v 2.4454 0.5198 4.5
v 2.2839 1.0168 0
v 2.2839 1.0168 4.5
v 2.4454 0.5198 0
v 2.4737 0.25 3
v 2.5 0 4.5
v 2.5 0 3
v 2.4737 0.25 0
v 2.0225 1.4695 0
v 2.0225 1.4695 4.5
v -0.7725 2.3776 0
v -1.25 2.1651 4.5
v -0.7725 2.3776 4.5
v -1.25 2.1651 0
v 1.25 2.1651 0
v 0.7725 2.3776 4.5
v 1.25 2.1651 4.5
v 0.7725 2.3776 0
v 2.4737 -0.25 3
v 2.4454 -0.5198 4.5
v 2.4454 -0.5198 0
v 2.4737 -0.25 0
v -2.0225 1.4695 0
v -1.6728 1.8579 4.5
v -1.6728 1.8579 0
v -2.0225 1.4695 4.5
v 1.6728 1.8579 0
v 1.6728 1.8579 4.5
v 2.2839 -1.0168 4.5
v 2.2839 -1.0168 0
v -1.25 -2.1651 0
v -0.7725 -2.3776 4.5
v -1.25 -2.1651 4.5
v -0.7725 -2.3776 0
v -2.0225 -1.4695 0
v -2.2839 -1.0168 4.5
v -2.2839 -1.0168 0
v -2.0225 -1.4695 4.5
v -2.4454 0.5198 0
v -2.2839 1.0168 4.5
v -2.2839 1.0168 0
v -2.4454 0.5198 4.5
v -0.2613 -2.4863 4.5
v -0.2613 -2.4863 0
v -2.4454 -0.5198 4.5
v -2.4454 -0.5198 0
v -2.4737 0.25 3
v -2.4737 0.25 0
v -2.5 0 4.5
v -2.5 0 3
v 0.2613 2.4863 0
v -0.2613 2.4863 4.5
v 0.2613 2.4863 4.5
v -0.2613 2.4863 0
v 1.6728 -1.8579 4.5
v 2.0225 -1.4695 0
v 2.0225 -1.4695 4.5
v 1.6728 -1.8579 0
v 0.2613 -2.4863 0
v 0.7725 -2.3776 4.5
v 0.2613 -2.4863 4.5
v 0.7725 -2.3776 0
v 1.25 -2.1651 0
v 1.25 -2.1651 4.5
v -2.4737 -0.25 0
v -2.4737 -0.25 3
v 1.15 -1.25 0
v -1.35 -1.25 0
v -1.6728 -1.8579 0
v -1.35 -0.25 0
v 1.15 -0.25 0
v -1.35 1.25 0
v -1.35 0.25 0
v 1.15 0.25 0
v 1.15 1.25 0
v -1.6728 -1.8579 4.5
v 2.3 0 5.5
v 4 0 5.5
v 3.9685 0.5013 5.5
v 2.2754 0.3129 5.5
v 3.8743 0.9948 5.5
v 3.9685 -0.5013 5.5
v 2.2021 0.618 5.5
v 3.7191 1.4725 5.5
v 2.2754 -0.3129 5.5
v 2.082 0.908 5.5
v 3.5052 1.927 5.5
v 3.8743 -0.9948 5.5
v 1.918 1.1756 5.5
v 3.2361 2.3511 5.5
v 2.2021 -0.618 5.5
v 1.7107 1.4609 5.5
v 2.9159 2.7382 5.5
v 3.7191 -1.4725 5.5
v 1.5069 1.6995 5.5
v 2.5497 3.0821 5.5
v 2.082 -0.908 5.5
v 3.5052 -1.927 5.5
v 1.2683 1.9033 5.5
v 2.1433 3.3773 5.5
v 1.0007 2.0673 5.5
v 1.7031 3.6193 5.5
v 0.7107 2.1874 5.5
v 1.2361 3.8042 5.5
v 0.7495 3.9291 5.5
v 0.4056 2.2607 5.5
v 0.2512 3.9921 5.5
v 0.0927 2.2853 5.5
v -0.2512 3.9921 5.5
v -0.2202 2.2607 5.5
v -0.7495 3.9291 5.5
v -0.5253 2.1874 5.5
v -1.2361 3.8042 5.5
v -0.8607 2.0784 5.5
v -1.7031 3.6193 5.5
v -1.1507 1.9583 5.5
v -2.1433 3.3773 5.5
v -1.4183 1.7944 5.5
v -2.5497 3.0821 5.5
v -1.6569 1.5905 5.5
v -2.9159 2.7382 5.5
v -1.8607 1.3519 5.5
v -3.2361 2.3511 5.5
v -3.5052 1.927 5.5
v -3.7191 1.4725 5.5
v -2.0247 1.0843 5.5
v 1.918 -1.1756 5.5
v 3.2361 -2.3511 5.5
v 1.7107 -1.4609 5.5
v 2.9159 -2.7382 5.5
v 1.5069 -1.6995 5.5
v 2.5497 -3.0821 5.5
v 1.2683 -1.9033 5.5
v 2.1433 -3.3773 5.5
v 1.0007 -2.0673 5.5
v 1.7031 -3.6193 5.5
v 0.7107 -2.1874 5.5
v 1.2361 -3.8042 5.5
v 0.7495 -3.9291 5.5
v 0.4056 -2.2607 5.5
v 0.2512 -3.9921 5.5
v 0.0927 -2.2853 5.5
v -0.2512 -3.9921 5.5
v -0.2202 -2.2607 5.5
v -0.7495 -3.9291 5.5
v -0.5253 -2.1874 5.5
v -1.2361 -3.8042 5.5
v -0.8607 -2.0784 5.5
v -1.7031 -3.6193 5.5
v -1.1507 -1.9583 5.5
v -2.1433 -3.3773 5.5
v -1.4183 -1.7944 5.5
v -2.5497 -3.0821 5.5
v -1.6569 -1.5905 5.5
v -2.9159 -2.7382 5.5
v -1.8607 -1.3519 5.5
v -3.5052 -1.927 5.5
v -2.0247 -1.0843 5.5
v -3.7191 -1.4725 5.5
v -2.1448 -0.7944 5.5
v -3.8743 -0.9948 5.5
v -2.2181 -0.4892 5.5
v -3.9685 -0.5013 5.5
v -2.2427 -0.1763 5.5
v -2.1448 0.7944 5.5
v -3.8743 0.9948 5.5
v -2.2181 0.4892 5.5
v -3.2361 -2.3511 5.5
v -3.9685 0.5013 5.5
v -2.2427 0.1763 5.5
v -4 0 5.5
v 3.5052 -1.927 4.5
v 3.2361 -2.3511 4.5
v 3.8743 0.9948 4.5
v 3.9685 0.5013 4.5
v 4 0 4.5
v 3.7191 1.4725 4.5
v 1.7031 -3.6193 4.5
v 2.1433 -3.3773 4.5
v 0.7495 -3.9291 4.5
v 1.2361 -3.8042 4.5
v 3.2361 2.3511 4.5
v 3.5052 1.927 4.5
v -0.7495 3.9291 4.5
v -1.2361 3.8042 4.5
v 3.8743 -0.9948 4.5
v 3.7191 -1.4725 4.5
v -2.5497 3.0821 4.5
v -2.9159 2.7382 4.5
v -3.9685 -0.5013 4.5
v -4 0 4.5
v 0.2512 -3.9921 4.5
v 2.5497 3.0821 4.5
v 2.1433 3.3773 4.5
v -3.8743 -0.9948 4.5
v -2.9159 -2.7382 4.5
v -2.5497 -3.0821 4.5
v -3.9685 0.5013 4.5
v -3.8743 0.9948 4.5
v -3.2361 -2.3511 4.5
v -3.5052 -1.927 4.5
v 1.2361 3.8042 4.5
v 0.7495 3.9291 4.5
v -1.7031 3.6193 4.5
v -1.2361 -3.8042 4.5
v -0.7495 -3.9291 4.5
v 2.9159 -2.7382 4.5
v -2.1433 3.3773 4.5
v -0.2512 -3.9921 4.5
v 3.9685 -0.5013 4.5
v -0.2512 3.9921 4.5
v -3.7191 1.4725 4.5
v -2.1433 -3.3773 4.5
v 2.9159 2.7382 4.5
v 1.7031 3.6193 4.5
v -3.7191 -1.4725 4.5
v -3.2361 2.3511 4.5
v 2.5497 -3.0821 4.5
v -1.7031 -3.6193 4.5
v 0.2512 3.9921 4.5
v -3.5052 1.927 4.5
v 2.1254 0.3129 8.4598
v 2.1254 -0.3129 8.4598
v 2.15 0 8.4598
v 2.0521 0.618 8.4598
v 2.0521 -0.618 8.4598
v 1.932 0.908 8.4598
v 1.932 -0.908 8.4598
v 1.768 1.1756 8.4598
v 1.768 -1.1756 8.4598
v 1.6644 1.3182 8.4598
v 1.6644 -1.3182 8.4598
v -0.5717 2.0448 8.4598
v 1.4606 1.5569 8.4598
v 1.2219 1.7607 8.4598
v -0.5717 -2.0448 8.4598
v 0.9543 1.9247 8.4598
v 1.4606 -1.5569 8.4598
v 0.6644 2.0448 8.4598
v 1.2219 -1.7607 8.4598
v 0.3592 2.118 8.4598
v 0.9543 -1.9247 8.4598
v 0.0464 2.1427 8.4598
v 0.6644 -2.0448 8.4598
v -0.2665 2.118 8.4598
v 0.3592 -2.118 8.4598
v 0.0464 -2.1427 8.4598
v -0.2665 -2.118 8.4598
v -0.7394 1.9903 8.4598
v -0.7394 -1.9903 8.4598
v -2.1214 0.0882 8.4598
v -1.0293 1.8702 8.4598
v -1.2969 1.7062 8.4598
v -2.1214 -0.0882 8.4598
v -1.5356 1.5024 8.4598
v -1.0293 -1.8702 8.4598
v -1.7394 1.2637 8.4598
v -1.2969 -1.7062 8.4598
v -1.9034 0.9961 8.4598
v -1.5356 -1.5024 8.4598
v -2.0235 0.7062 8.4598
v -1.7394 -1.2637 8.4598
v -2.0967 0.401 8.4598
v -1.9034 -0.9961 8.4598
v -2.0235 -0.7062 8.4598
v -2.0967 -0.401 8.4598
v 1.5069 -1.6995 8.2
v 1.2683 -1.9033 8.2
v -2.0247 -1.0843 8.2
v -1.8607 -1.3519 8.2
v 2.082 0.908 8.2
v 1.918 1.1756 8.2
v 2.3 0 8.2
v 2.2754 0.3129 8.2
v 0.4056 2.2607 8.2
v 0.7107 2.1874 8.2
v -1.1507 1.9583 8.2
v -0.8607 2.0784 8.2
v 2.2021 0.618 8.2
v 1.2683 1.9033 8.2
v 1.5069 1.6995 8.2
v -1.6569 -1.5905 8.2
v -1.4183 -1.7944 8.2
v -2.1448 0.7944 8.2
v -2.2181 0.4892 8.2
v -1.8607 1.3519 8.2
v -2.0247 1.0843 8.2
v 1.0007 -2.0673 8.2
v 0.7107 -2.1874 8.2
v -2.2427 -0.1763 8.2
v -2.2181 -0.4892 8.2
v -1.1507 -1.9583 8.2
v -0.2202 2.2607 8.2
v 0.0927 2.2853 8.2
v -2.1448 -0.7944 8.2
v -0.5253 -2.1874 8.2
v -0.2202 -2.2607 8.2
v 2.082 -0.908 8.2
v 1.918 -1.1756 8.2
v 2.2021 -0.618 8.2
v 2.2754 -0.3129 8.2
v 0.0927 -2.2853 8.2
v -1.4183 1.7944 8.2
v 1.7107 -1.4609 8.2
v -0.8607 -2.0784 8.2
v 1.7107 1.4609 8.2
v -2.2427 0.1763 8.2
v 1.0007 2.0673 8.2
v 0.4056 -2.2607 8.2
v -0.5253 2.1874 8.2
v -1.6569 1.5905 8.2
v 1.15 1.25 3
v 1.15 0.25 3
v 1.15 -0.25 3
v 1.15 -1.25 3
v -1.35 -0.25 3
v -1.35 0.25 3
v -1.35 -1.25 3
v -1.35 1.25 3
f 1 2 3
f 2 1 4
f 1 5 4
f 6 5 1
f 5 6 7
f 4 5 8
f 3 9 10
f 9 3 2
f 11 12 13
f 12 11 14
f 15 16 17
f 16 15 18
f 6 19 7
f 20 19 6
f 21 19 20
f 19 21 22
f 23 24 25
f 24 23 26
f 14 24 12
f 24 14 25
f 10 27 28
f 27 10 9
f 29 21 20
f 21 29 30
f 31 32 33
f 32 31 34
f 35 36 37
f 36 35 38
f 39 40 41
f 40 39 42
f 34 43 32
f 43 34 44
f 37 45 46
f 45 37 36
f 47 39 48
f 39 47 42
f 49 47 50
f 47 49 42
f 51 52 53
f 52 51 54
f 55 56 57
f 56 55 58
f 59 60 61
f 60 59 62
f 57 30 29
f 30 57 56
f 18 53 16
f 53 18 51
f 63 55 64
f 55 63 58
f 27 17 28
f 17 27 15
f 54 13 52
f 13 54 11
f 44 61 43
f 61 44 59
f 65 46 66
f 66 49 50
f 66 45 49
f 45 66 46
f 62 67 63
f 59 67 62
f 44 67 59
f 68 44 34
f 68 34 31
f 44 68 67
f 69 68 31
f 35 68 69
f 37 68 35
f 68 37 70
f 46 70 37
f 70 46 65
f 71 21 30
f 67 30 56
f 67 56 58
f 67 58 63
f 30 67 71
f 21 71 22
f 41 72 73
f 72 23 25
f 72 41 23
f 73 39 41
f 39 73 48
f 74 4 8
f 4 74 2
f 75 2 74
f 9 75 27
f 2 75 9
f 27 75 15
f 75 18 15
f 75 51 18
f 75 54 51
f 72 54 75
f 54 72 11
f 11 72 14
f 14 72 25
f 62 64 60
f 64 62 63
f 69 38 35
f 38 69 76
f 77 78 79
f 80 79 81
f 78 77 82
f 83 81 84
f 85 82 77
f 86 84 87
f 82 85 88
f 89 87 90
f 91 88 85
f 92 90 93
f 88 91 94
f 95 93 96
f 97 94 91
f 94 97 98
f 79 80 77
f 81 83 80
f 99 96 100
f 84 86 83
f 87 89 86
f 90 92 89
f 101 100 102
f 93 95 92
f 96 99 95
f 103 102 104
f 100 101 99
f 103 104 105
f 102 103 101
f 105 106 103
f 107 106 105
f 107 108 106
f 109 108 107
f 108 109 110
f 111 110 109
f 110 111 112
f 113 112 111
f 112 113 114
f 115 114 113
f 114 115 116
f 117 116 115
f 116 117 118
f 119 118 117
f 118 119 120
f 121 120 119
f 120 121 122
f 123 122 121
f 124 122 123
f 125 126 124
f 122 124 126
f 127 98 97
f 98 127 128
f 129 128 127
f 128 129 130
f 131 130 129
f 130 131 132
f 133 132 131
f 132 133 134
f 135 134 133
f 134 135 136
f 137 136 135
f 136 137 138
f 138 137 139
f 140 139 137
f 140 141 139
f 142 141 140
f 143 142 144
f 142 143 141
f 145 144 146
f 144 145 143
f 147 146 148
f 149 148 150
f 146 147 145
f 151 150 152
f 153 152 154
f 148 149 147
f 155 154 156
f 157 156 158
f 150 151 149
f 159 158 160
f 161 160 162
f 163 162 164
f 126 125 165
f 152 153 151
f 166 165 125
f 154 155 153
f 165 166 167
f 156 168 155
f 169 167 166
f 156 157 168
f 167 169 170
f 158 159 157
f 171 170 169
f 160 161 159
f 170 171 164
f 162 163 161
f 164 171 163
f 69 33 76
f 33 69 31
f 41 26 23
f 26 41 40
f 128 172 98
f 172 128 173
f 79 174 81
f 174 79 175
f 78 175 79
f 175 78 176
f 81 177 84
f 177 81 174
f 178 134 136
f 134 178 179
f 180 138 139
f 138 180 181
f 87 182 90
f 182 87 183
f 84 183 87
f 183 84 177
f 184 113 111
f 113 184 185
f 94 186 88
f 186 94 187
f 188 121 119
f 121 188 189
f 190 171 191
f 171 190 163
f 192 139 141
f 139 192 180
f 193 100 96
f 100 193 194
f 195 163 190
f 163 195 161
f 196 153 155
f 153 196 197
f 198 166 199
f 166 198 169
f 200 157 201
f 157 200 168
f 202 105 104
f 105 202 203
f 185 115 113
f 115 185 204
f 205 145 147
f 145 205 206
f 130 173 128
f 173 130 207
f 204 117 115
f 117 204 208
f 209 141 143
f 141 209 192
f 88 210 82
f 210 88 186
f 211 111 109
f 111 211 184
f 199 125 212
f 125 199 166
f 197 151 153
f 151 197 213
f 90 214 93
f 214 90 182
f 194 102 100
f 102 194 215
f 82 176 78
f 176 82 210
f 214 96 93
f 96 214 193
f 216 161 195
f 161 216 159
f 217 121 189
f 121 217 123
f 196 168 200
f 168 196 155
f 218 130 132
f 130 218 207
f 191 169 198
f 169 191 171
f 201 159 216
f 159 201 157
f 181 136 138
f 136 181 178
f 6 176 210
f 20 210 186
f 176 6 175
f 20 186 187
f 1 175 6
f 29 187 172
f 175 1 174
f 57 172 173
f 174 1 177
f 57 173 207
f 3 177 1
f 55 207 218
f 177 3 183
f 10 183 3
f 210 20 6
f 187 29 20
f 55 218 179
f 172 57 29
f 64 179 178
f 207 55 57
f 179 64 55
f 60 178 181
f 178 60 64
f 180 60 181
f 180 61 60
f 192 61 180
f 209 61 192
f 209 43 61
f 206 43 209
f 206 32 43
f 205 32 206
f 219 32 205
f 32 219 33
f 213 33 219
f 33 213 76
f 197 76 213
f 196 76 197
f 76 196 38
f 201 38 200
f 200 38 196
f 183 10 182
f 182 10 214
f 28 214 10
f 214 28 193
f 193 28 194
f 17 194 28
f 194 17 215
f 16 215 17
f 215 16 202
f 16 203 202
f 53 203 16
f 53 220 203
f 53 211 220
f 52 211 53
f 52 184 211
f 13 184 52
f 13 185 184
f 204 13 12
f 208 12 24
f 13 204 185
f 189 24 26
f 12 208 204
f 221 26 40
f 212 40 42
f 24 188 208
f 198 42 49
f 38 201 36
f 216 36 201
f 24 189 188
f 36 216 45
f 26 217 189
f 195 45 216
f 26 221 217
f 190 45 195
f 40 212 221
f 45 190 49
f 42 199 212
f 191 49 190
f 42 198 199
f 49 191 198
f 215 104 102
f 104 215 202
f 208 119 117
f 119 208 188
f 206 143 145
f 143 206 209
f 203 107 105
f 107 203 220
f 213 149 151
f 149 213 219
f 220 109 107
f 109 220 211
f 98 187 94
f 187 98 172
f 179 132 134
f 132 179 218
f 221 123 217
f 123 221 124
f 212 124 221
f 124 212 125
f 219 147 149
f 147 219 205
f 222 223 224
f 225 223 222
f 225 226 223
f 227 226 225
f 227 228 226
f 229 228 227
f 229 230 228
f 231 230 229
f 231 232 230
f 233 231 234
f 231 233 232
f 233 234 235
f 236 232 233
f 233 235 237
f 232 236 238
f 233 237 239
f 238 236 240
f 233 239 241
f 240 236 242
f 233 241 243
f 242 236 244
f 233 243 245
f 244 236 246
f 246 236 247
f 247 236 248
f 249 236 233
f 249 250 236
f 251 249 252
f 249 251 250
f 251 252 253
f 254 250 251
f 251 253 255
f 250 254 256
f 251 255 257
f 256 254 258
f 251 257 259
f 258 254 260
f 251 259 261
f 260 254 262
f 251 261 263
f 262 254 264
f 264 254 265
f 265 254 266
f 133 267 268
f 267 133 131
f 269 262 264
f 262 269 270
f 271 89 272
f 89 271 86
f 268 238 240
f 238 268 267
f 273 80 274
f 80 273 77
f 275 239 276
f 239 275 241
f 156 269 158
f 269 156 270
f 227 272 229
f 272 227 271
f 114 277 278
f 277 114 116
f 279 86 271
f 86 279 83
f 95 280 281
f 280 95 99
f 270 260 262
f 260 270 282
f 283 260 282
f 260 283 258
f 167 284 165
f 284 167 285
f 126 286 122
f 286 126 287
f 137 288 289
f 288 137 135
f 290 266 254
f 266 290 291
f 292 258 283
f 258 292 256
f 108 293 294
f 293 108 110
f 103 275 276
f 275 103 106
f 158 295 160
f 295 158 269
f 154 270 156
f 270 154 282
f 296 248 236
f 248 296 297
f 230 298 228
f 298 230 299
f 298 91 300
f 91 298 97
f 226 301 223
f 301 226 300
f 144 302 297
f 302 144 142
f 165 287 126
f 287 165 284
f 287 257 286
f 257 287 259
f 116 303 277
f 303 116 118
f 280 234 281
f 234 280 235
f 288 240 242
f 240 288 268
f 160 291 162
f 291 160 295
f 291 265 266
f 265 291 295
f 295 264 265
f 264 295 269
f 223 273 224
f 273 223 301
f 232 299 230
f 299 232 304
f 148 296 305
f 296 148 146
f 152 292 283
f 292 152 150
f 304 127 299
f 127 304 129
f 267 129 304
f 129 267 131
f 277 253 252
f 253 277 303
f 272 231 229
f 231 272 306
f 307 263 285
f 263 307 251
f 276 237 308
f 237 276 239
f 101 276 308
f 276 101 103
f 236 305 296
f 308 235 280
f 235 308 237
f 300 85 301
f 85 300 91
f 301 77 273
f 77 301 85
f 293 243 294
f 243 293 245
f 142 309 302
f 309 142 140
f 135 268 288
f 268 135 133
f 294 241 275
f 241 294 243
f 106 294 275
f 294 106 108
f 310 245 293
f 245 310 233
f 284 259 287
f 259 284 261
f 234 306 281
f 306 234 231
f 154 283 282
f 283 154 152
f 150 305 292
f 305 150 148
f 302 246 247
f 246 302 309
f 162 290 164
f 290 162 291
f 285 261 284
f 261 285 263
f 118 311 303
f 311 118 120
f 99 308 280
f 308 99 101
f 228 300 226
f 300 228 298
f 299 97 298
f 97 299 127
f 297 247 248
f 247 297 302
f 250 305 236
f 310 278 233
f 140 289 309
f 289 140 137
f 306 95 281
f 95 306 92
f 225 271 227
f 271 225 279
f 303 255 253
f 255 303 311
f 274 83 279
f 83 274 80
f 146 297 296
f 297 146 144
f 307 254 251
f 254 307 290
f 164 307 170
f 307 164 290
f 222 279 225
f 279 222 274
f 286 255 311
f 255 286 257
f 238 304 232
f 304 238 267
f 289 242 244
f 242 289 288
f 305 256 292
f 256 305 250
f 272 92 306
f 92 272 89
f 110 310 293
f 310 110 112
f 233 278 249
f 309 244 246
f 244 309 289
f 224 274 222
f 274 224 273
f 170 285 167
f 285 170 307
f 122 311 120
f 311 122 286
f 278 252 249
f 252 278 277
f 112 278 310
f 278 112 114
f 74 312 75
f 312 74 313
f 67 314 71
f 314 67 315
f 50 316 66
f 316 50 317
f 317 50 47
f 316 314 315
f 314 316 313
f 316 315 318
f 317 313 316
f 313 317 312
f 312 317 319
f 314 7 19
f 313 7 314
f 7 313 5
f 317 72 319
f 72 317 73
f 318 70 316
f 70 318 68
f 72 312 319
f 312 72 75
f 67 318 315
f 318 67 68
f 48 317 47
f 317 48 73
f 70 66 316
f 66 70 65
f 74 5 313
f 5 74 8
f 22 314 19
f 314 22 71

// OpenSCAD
// file: common.scad
// PCB size
pcb = [140, 54, 1.6];
pcb_screw_diam = 3.6;
pcb_screw_pos = [4, 4];
pcb_bolt_diam = 6.5;
pcb_bolt_depth = 3.2;
pcb_bolt_length = 30;
pcb_image = "picoclock_scaled.png";
pcb_margin = 0.4;

// general thickness
t = 1.5;

front = [pcb[0] + t * 2, pcb[1] + t * 2, 12];
back = [pcb[0] + t * 2, pcb[1] + t * 2, 60];
pcb_bolt_back_depth = back[2] - pcb_bolt_length + t + pcb_bolt_depth + front[2];

pcb_support = [pcb_screw_pos[0]*2+pcb_margin/2, pcb_screw_pos[0]*2+pcb_margin/2, front[2] - pcb[2] - t];

joint_margin = 0.2;
joint_width = t/2 - joint_margin;

screen_size = [59.3, 29.6, 1.5];
screen_visible_size = [52, 27.4, 3];

button_x = 50;
button_y = 13;
button_radius = 3;

usbc = [3, 10.7, 10.3];
usba = [6, 15.5, 16.3];
sd = [1.6, 15.7, 19.7];
jack = [4.5, 6.3, 14];
usbc_pos = 9.6;  // from center
usba_pos = 8.14; // from center
sd_pos = 7;
jack_pos = 9.85;

speaker_plate = [132, 10, 19];
speaker = [100, 36, 28];
speaker_support = [11, pcb_support[1], 22];

speaker2 = [51.5, 19.5, 30.3];
speaker2_baffle_diam = 47;
speaker2_screw_diam = 60;
speaker2_screw_from_center = speaker2_screw_diam / 2 * sqrt(2) / 2;
speaker2_support = [52, 52, 2];

screen_holder_screw_rad = 2;
screen_holder_out = [screen_holder_screw_rad*3, pcb[1] - 0.2, 3.5];
//screen_holder_in = [70.4, 39.2, 4];
screen_holder_in = [68.4, 39.2, 4];
screen_size_toborder = 7.1;


// pin position:
// 32.2 / 24
// center: 144 / 2, 58 / 2
// => 72 +/- 31.2 => 40.8 / 103.2
// => 29 +- 24 => 5 / 53
// +80:
// 120.8 / 183.2
// 85 / 133
// main file
include <common.scad>;

hole_diam = 5;
outer_diam = 6;   // pcb holes are 5mm
inner_diam = 5;   // pcb holes are 5mm
depth = 6 + 1.6 + 1;
depth_blocker = 5.5;
depth_visible = 3;
sphere_visible = 0.3;

//btn_size = 2.4;	// Ok, tight
btn_size = 2.5;	// Ok, loose
btn = [btn_size, btn_size, 3];
fente = [1.4, 0.5, 3];

module body() {
    // part on btn
    cylinder(h=depth_blocker, d=inner_diam, $fn=30);
    // blocker
    translate([0, 0, depth_blocker-1]) cylinder(h=1, d=outer_diam+2, $fn=50);
    // visible part
    minkowski()
    {
        translate([0, 0, depth_blocker]) cylinder(h=depth_visible-sphere_visible, d=hole_diam-0.4-sphere_visible*2, $fn=40);
        sphere(sphere_visible);
    }
}

difference() {
    body();

    shiftx = 0.1;

    translate([0-shiftx, 0, btn[2]/2]) cube(btn, center=true);
    translate([-btn[0]/2-fente[0]/2-shiftx, 0, fente[2]/2]) cube(fente, center=true);
    translate([+btn[0]/2+fente[0]/2-shiftx, 0, fente[2]/2]) cube(fente, center=true);
}
